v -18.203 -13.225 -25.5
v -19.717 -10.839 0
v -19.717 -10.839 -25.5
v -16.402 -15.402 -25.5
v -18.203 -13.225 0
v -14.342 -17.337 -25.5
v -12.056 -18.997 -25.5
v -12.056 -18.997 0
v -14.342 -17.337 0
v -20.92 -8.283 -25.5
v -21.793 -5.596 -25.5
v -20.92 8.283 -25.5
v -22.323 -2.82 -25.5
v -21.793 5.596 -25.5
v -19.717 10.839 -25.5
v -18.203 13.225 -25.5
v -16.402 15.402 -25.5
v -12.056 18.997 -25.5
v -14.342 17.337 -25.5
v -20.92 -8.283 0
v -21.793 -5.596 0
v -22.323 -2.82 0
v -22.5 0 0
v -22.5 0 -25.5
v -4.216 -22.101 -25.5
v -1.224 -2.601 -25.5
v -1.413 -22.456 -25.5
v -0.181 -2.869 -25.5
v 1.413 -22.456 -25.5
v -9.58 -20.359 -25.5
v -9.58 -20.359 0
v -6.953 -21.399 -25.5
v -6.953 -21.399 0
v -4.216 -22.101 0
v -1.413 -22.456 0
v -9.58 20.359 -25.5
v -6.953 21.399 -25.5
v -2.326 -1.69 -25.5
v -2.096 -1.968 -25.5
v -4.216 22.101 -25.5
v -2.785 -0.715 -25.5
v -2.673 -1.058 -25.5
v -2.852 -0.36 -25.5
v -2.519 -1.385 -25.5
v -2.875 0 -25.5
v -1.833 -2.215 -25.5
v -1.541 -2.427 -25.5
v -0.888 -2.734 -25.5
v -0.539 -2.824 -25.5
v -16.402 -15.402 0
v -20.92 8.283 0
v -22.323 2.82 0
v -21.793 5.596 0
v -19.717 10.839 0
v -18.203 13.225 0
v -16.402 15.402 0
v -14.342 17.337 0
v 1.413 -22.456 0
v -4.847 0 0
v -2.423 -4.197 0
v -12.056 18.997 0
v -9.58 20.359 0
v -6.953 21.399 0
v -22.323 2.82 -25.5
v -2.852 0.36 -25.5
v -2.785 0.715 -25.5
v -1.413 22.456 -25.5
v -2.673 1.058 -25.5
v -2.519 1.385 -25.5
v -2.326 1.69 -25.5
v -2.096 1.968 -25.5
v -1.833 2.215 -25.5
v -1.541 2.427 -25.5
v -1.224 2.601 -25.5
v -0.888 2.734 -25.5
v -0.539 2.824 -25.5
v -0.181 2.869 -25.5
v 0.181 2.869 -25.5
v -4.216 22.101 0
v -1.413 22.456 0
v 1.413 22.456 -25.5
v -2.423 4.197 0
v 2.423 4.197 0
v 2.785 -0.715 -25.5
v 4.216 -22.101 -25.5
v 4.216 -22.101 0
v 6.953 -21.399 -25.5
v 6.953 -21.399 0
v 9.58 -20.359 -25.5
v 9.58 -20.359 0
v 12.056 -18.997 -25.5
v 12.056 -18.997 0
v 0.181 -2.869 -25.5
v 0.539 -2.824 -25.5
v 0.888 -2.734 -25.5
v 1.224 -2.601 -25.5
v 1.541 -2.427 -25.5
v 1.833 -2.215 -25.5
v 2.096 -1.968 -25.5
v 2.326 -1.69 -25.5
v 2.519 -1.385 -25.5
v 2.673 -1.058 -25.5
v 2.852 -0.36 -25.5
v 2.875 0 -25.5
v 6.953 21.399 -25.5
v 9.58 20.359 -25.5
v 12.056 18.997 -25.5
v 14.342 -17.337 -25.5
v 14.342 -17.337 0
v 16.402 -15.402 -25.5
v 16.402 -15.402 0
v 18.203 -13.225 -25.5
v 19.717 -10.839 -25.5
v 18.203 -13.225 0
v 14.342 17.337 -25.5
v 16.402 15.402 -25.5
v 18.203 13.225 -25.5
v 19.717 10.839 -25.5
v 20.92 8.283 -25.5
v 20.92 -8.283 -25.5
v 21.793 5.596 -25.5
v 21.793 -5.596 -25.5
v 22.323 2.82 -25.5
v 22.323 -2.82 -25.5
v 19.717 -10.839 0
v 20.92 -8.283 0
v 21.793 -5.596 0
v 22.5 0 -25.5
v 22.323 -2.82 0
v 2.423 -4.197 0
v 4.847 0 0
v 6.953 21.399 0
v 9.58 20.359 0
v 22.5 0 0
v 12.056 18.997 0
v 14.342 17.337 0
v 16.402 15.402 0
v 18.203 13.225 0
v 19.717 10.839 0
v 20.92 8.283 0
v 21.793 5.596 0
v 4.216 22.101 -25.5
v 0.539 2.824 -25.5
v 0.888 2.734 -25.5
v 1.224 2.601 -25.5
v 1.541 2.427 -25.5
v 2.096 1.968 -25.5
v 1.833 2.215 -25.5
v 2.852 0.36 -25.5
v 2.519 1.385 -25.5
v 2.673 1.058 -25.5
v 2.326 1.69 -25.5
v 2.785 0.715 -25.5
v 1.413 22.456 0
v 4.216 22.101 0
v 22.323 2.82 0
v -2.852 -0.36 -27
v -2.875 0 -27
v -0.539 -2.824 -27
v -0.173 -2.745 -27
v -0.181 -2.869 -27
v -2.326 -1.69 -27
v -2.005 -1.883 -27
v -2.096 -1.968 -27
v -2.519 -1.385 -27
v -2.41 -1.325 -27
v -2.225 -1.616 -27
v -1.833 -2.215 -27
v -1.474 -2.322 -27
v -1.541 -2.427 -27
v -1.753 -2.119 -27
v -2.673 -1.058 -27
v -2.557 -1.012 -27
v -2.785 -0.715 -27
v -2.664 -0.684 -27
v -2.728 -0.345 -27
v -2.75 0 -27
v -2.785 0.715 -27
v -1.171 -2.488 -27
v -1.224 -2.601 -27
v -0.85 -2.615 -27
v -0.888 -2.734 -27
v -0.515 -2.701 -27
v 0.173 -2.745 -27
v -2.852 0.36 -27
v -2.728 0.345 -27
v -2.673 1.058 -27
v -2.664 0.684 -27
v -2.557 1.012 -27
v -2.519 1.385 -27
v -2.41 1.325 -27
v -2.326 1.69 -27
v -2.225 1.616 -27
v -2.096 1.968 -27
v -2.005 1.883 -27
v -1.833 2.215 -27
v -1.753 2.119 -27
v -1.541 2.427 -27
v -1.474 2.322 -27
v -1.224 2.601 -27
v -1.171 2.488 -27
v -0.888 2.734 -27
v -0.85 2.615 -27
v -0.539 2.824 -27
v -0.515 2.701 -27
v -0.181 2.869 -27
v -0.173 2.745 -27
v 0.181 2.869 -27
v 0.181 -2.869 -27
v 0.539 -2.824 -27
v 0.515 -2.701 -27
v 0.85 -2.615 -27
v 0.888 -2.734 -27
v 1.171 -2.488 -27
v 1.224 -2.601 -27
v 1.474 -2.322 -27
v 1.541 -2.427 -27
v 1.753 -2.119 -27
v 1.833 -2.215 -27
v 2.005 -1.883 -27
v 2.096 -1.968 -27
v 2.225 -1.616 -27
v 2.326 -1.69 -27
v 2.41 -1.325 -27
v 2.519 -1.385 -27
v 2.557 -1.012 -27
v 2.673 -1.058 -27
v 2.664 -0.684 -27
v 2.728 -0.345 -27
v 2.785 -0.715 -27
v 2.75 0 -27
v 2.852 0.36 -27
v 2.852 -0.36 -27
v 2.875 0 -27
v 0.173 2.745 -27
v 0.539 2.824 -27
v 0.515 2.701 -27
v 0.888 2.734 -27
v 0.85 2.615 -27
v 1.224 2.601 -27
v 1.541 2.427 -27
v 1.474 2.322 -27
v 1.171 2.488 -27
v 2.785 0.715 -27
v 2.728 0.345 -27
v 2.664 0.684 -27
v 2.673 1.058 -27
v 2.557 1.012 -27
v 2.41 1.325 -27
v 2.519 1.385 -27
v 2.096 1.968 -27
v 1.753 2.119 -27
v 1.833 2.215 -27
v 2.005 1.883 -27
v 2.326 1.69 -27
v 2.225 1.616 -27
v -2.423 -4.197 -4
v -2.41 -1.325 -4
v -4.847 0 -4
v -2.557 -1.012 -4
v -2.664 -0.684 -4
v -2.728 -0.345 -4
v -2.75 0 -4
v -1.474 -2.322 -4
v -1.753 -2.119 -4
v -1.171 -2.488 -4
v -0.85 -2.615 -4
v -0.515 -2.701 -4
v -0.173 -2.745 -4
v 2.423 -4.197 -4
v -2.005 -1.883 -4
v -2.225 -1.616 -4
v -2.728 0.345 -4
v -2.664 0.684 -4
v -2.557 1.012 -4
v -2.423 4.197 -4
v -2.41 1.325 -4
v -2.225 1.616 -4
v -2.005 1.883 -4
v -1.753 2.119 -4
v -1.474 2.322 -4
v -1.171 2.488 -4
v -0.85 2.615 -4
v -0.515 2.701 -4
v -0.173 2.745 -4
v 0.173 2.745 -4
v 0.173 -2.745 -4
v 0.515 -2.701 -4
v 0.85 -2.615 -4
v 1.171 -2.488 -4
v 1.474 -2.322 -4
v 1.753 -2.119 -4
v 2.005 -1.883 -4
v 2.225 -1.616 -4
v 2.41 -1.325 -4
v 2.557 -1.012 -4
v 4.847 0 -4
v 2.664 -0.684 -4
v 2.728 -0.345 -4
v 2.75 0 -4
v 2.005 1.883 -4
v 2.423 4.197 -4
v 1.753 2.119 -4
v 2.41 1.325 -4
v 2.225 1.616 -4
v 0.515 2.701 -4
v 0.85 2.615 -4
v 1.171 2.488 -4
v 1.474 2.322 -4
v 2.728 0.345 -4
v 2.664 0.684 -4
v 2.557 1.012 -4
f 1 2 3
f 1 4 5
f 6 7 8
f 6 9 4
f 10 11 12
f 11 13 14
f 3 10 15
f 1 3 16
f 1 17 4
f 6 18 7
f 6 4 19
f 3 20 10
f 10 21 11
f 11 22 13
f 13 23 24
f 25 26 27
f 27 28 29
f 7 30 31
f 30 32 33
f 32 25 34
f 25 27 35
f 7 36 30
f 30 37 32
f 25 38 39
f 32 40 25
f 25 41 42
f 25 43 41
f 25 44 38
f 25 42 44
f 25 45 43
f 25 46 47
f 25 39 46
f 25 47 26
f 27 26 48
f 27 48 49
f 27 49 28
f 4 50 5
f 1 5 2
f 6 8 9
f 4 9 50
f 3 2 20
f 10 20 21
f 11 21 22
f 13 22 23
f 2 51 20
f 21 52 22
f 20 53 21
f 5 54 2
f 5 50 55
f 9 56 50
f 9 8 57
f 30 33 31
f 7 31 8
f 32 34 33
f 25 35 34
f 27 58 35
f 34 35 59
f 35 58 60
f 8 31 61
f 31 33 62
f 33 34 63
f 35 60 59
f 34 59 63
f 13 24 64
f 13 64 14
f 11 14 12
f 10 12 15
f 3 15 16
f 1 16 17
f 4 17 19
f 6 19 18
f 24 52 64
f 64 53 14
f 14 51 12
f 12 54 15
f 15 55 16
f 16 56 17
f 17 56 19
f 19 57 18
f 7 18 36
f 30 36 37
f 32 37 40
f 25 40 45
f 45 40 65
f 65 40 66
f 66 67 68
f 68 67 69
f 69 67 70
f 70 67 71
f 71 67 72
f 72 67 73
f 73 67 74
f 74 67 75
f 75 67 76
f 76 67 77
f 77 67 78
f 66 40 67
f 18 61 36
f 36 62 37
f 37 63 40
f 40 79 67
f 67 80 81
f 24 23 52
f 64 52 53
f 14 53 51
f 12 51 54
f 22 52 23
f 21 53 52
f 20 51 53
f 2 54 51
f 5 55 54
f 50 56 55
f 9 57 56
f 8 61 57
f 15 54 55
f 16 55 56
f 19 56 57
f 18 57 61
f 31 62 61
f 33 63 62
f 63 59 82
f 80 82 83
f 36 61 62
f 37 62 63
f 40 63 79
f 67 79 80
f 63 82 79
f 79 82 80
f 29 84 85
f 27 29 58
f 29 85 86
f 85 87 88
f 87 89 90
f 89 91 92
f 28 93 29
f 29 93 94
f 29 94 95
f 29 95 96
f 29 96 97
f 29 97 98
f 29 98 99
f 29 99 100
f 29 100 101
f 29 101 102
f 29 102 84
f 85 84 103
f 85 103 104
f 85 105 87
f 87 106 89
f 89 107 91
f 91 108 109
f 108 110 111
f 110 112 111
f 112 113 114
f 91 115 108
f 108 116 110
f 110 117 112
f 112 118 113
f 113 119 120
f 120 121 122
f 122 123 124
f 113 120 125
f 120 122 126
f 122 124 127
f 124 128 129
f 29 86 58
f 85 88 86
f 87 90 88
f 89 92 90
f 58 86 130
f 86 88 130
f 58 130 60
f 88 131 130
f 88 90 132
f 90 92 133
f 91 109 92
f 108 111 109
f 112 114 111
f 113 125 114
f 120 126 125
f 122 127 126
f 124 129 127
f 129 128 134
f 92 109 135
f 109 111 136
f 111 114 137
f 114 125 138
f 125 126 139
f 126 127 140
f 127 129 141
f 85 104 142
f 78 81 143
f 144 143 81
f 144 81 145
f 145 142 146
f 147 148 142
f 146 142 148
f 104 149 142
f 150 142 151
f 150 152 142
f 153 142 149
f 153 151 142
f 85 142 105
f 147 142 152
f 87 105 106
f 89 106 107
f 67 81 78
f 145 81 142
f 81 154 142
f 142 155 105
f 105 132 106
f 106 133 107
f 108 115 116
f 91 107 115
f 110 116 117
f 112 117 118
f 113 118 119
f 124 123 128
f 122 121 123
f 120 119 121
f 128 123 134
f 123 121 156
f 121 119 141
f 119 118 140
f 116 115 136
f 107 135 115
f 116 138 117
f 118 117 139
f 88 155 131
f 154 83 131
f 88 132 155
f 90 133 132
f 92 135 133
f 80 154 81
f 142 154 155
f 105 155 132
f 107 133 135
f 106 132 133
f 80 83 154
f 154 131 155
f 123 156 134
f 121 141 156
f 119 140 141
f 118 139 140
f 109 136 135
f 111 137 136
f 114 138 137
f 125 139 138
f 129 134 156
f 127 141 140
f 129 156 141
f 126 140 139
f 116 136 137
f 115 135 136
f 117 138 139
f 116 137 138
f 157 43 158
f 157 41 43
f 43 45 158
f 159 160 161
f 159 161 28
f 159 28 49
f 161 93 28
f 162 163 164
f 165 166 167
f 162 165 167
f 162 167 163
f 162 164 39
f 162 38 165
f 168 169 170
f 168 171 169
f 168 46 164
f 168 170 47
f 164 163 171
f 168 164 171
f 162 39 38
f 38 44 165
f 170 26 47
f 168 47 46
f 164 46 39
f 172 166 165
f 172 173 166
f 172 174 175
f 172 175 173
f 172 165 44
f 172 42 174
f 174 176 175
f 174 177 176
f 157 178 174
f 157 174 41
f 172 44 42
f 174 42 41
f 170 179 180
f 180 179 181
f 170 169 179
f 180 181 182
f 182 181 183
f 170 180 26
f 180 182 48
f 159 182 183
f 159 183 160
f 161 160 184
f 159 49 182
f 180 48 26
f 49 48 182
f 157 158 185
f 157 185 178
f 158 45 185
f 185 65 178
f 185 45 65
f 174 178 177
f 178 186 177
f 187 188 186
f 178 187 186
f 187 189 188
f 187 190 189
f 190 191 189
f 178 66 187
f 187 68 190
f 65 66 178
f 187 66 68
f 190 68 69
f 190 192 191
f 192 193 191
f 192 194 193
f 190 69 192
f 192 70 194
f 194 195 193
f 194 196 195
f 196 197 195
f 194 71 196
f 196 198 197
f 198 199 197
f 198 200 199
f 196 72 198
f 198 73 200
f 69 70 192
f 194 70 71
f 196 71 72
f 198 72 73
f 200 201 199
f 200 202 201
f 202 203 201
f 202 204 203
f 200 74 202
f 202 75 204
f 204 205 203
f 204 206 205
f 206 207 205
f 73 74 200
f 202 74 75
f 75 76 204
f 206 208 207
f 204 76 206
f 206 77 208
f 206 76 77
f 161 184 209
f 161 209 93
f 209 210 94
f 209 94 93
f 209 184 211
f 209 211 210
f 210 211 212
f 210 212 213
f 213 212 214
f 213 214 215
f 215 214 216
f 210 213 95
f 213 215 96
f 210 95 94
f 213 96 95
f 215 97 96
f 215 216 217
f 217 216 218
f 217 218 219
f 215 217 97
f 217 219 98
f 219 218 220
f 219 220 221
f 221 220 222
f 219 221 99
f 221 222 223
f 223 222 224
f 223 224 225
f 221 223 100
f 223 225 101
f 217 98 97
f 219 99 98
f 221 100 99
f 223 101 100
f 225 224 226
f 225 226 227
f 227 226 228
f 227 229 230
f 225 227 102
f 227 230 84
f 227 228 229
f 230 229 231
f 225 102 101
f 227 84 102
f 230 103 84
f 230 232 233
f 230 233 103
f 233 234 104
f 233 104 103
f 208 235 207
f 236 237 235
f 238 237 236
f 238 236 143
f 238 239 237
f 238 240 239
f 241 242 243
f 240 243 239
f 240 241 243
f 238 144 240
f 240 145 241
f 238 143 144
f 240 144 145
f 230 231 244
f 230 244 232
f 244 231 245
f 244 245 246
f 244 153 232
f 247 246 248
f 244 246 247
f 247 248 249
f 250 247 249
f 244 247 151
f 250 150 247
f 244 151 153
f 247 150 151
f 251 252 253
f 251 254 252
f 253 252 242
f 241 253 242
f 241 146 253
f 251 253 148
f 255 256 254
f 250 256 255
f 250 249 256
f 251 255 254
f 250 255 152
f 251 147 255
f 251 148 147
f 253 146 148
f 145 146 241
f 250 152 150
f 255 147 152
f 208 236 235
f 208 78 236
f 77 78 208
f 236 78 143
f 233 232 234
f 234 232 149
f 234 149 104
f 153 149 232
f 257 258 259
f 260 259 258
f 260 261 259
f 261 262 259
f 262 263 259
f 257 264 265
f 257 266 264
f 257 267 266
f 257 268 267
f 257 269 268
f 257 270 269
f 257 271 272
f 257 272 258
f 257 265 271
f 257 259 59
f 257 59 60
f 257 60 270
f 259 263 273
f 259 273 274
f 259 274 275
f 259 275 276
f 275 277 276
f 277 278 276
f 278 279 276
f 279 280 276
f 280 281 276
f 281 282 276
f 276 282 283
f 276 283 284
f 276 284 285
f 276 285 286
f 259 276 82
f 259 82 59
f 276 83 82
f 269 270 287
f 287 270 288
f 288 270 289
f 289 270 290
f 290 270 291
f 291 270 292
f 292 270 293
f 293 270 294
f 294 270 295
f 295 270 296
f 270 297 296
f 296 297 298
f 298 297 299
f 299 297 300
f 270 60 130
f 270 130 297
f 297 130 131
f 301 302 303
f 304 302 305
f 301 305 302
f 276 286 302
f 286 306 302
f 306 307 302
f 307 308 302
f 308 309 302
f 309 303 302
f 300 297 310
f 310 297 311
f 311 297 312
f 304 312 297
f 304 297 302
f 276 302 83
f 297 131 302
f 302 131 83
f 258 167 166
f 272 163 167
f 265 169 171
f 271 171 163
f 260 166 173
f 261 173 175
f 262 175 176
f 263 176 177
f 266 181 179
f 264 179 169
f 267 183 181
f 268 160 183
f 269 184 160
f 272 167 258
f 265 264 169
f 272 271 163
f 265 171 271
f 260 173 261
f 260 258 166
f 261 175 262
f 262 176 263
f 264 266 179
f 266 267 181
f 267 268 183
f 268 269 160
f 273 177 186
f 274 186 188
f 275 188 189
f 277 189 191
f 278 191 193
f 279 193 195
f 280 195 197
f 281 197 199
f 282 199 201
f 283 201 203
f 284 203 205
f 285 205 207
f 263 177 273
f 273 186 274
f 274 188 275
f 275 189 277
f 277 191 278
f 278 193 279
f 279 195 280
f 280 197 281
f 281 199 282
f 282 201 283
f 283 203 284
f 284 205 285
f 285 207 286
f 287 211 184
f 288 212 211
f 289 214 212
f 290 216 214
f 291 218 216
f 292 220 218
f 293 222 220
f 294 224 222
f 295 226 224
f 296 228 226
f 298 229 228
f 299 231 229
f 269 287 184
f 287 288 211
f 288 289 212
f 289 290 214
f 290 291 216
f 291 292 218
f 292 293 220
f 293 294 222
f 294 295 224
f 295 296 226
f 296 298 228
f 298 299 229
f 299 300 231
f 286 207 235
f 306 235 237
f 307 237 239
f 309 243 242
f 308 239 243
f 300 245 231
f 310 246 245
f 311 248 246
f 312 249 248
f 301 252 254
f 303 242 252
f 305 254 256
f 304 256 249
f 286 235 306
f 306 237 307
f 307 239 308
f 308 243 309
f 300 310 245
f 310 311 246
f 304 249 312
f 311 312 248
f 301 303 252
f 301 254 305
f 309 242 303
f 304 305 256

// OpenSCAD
$fn = 50;

difference() {
	union() {
		translate(v = [0, 0, -25.5]) {
			cylinder(h = 25.5, r = 22.5);
		}
		#translate(v = [0, 0, -27.0]) {
			cylinder(h = 27, r = 2.875);
		}
	}
	union() {
		translate(v = [0, 0, 0]) {
			rotate(a = [0, 0, 0]) {
				difference() {
					union() {
						translate(v = [0, 0, -4]) {
							linear_extrude(height = 4) {
								polygon(points = [[4.8468, 0.0], [2.4234000000000004, 4.197451927062417], [-2.423399999999999, 4.197451927062417], [-4.8468, 5.935618106107392e-16], [-2.423400000000002, -4.197451927062416], [2.423399999999997, -4.197451927062419]]);
							}
						}
					}
					union();
				}
			}
		}
		#translate(v = [0, 0, -100.0]) {
			cylinder(h = 200, r = 2.75);
		}
	}
}
